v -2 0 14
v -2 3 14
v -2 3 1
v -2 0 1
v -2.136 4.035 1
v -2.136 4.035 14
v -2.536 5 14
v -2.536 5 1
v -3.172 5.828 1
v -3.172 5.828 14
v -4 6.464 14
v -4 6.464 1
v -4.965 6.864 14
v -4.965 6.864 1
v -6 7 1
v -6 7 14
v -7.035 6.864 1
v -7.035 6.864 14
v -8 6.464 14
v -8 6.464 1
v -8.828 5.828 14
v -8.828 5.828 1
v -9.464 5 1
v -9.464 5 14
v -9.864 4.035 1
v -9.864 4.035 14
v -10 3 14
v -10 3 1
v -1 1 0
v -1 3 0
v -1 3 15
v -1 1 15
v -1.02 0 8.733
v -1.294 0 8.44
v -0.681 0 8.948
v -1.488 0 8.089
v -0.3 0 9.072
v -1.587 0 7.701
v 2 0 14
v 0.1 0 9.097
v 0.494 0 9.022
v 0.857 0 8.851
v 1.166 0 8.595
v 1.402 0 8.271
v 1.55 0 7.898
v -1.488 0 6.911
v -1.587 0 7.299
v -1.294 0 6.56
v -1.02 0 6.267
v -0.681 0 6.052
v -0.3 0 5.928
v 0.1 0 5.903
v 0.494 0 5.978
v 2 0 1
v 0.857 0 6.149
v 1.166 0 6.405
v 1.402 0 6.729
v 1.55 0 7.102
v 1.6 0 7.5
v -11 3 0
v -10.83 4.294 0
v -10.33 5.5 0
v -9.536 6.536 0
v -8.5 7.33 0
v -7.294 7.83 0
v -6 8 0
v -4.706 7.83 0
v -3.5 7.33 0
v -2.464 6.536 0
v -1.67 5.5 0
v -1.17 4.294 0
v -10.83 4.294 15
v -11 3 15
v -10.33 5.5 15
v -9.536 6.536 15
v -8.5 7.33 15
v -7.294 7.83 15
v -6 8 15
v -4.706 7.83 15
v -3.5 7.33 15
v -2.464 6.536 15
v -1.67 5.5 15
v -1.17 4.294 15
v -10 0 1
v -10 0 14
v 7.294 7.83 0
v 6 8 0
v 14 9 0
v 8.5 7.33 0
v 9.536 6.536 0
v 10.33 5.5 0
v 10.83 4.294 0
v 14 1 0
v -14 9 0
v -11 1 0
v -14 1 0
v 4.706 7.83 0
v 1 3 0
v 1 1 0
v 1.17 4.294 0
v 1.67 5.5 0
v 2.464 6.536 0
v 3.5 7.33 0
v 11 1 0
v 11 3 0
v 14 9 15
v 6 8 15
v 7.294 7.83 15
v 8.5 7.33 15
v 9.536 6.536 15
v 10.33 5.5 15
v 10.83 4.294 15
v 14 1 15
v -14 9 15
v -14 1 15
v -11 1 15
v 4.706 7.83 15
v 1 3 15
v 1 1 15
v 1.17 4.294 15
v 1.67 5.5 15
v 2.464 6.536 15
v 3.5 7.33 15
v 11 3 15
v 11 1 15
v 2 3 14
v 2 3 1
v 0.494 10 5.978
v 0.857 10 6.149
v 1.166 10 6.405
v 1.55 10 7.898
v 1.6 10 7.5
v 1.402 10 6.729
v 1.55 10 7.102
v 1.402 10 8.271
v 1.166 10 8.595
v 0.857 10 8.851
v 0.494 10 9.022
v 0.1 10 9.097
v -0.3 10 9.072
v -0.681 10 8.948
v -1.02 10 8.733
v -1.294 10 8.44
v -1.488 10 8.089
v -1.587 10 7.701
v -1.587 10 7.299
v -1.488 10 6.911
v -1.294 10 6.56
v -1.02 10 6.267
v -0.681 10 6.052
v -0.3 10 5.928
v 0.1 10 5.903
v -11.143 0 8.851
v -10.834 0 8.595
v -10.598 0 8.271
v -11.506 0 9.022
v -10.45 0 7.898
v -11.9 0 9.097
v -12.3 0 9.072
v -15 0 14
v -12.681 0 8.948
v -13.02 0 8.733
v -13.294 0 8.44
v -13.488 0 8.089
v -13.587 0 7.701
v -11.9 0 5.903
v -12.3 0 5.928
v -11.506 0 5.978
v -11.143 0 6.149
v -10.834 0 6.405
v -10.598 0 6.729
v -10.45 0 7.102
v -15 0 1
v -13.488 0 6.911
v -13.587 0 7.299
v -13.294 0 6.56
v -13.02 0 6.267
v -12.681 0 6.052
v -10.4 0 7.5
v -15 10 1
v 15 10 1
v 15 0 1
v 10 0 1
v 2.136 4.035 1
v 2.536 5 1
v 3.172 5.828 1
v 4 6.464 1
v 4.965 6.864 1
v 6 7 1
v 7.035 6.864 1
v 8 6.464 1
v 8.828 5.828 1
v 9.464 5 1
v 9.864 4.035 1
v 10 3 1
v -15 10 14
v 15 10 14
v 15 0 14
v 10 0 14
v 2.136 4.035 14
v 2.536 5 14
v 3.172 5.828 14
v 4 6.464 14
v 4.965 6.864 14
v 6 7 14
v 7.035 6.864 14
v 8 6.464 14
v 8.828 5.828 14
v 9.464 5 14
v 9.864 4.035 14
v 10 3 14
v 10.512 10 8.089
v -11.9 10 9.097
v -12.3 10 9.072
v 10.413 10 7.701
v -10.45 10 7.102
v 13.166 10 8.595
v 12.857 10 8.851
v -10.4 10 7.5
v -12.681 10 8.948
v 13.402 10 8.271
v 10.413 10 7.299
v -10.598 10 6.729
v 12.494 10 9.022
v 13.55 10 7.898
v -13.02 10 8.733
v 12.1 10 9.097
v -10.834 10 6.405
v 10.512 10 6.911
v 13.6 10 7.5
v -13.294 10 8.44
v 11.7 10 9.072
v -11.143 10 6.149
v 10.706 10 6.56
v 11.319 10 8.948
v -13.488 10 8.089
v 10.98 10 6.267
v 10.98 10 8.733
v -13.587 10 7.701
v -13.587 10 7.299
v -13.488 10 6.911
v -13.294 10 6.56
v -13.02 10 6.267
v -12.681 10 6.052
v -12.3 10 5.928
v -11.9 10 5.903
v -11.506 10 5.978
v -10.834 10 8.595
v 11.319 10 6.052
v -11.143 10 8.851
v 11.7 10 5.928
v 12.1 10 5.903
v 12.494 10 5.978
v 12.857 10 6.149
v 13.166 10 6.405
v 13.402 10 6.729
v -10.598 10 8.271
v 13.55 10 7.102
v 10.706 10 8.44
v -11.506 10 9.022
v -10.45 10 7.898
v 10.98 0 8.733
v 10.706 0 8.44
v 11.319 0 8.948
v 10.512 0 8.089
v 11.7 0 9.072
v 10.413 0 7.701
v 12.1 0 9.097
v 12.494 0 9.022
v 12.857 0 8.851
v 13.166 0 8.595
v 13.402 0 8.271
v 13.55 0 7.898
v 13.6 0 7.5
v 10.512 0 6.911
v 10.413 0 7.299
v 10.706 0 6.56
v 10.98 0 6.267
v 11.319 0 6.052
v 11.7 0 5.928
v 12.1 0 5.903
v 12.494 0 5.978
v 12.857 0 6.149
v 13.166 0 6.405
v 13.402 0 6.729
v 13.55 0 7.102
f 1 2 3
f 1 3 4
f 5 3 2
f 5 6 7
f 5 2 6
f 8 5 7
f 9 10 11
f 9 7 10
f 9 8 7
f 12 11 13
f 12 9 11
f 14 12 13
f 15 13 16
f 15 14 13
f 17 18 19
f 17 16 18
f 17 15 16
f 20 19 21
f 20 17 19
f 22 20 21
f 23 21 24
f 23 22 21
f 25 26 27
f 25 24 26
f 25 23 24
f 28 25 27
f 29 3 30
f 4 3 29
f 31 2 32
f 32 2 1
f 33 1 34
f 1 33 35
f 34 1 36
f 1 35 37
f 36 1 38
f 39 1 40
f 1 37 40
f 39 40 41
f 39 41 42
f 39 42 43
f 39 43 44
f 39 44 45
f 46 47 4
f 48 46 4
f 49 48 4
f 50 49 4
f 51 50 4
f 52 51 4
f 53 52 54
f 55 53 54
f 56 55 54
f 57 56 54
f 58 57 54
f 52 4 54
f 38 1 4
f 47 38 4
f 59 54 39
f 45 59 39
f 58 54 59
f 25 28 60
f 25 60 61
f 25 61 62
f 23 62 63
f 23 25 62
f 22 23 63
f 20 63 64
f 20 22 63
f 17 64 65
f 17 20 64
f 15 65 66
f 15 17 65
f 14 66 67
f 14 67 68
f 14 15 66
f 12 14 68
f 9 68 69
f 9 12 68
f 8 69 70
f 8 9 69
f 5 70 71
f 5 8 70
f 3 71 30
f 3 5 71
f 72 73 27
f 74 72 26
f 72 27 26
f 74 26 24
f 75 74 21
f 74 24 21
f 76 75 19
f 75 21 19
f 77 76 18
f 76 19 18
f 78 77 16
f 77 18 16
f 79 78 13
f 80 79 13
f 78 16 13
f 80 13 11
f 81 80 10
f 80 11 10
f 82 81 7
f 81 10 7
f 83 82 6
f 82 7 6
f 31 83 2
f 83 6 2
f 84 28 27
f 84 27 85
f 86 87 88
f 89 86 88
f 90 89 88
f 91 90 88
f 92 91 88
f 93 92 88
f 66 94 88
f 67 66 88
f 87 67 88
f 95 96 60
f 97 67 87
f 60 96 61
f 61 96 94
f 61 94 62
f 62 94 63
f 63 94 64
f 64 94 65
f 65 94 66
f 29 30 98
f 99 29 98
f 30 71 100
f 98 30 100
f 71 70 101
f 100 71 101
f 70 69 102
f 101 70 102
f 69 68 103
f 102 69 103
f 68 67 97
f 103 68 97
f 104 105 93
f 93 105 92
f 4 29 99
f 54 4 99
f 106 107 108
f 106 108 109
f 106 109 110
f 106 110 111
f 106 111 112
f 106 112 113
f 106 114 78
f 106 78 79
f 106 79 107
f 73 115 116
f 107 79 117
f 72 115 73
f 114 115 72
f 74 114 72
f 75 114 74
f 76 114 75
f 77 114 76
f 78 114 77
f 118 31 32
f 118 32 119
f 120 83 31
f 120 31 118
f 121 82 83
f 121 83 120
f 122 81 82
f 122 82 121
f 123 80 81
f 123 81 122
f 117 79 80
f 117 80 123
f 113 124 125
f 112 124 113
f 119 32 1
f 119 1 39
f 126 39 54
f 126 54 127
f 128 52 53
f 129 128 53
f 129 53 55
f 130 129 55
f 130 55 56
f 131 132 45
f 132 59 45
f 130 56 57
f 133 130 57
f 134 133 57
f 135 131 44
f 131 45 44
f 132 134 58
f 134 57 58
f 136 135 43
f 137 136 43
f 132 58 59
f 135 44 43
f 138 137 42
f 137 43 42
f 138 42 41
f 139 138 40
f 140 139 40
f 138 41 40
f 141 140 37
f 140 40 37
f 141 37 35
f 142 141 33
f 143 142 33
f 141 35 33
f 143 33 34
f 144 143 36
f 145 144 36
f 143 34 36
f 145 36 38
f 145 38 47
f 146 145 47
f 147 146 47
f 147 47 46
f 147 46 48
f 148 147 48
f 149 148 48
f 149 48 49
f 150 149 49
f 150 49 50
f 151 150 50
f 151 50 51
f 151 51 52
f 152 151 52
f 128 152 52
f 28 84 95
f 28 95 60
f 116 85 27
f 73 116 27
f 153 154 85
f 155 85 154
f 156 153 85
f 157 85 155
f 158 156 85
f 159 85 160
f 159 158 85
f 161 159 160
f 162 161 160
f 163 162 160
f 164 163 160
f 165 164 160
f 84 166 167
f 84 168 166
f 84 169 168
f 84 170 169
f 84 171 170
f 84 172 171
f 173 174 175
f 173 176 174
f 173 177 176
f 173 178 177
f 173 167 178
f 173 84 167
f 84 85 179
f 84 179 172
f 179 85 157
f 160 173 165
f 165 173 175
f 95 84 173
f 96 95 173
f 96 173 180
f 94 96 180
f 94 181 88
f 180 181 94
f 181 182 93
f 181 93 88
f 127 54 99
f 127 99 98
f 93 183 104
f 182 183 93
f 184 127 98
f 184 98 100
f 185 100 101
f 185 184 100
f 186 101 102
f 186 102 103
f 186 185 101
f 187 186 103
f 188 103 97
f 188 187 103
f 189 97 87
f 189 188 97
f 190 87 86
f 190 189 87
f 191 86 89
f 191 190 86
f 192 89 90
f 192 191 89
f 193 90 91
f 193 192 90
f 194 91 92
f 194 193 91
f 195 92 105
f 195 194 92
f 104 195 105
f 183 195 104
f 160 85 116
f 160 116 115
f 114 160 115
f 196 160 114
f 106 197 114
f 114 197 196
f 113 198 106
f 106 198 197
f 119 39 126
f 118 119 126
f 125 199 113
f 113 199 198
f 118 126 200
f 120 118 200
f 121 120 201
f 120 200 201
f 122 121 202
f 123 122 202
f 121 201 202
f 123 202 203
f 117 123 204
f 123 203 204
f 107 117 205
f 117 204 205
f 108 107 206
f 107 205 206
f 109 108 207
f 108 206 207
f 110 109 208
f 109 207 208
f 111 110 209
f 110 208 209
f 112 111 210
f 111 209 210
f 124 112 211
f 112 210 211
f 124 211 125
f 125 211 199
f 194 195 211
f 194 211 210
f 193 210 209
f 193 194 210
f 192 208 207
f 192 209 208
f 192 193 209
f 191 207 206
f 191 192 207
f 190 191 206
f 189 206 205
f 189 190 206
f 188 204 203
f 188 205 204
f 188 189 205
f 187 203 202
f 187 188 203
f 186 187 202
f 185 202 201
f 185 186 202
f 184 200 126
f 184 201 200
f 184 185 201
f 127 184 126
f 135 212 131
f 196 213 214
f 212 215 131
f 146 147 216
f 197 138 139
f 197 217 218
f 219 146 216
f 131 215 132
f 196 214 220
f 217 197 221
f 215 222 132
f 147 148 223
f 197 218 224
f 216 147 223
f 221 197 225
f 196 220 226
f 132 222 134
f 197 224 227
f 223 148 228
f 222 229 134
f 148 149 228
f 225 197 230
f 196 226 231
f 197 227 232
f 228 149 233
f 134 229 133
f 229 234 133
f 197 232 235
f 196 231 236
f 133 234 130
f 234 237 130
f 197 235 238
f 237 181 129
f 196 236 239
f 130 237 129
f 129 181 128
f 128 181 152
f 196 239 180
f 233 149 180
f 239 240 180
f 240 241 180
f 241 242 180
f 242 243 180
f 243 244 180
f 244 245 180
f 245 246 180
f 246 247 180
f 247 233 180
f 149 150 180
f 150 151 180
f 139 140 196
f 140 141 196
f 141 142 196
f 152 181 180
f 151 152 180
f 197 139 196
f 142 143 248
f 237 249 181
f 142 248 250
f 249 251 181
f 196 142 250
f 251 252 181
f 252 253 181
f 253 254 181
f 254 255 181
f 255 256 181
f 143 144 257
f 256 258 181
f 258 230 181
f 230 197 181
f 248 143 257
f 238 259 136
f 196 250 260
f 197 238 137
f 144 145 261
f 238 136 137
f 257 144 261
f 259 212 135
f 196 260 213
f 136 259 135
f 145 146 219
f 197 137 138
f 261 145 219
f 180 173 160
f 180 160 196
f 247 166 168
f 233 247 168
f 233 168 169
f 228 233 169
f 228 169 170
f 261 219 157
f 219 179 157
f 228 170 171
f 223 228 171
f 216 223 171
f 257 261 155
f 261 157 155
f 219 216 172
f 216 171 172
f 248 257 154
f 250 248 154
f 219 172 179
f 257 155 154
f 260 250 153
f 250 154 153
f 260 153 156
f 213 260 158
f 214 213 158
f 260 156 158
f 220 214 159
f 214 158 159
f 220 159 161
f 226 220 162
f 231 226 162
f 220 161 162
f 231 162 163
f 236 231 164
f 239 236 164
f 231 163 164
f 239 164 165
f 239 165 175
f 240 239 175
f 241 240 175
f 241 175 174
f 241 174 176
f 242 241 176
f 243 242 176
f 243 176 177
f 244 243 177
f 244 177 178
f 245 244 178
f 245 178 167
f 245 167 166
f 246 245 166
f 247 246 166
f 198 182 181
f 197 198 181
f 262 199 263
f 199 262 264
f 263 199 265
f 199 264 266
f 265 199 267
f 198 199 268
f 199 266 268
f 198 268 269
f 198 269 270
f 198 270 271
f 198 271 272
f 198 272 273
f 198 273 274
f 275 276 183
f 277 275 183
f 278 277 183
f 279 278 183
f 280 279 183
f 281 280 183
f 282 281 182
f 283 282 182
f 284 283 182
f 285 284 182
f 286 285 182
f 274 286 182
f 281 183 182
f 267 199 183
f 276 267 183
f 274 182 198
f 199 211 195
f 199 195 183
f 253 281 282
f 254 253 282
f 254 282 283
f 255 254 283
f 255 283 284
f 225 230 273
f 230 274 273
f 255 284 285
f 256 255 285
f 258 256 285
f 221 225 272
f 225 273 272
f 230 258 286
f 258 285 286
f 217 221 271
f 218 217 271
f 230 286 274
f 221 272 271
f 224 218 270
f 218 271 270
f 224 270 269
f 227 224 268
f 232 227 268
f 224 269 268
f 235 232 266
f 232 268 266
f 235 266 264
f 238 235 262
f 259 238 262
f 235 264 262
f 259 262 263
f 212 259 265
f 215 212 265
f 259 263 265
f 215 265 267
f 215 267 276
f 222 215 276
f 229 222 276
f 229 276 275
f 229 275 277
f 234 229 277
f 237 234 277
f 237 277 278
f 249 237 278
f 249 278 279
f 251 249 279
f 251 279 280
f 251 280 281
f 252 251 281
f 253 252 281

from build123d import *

# Parameters (mm, degrees)
PAD_DEPTH    = 15
SKETCH001_R  = 1.6
POCKET_DEPTH = 10.001
CHAMFER_SIZE = 1


with BuildPart() as part:
    # Sketch → Pad (new body)
    with BuildSketch(Plane.XY):
        with BuildLine():
            ThreePointArc((-2, 3), (-6, 7), (-10, 3))
            Line((-10, 3), (-10, 0))
            Line((-10, 0), (-15, 0))
            Line((-15, 0), (-15, 10))
            Line((15, 10), (-15, 10))
            Line((15, 0), (15, 10))
            Line((10, 0), (15, 0))
            Line((10, 3), (10, 0))
            ThreePointArc((10, 3), (6, 7), (2, 3))
            Line((2, 0), (2, 3))
            Line((-2, 0), (2, 0))
            Line((-2, 3), (-2, 0))
        make_face()
    extrude(amount=PAD_DEPTH)

    # Sketch001 → Pocket (cut, through all)
    with BuildSketch(Plane.XZ):
        with Locations((0, 7.5)):
            Circle(SKETCH001_R)
        with Locations((-12, 7.5)):
            Circle(SKETCH001_R)
        with Locations((12, 7.5)):
            Circle(SKETCH001_R)
    extrude(amount=-POCKET_DEPTH, mode=Mode.SUBTRACT)

    # Chamfer
    chamfer_edges = [part.edges().sort_by_distance(p)[0] for p in [
        (-2, 1.5, 15),
        (-6, 7, 15),
        (-10, 1.5, 15),
        (-12.5, 0, 15),
        (-15, 5, 15),
        (0, 10, 15),
        (15, 5, 15),
        (12.5, 0, 15),
        (10, 1.5, 15),
        (6, 7, 15),
        (2, 1.5, 15),
        (0, 0, 15),
        (-2, 1.5, 0),
        (-6, 7, 0),
        (-10, 1.5, 0),
        (-12.5, 0, 0),
        (-15, 5, 0),
        (0, 10, 0),
        (15, 5, 0),
        (12.5, 0, 0),
        (10, 1.5, 0),
        (6, 7, 0),
        (2, 1.5, 0),
        (0, 0, 0),
    ]]
    chamfer(chamfer_edges, length=CHAMFER_SIZE)


solid = part.part
